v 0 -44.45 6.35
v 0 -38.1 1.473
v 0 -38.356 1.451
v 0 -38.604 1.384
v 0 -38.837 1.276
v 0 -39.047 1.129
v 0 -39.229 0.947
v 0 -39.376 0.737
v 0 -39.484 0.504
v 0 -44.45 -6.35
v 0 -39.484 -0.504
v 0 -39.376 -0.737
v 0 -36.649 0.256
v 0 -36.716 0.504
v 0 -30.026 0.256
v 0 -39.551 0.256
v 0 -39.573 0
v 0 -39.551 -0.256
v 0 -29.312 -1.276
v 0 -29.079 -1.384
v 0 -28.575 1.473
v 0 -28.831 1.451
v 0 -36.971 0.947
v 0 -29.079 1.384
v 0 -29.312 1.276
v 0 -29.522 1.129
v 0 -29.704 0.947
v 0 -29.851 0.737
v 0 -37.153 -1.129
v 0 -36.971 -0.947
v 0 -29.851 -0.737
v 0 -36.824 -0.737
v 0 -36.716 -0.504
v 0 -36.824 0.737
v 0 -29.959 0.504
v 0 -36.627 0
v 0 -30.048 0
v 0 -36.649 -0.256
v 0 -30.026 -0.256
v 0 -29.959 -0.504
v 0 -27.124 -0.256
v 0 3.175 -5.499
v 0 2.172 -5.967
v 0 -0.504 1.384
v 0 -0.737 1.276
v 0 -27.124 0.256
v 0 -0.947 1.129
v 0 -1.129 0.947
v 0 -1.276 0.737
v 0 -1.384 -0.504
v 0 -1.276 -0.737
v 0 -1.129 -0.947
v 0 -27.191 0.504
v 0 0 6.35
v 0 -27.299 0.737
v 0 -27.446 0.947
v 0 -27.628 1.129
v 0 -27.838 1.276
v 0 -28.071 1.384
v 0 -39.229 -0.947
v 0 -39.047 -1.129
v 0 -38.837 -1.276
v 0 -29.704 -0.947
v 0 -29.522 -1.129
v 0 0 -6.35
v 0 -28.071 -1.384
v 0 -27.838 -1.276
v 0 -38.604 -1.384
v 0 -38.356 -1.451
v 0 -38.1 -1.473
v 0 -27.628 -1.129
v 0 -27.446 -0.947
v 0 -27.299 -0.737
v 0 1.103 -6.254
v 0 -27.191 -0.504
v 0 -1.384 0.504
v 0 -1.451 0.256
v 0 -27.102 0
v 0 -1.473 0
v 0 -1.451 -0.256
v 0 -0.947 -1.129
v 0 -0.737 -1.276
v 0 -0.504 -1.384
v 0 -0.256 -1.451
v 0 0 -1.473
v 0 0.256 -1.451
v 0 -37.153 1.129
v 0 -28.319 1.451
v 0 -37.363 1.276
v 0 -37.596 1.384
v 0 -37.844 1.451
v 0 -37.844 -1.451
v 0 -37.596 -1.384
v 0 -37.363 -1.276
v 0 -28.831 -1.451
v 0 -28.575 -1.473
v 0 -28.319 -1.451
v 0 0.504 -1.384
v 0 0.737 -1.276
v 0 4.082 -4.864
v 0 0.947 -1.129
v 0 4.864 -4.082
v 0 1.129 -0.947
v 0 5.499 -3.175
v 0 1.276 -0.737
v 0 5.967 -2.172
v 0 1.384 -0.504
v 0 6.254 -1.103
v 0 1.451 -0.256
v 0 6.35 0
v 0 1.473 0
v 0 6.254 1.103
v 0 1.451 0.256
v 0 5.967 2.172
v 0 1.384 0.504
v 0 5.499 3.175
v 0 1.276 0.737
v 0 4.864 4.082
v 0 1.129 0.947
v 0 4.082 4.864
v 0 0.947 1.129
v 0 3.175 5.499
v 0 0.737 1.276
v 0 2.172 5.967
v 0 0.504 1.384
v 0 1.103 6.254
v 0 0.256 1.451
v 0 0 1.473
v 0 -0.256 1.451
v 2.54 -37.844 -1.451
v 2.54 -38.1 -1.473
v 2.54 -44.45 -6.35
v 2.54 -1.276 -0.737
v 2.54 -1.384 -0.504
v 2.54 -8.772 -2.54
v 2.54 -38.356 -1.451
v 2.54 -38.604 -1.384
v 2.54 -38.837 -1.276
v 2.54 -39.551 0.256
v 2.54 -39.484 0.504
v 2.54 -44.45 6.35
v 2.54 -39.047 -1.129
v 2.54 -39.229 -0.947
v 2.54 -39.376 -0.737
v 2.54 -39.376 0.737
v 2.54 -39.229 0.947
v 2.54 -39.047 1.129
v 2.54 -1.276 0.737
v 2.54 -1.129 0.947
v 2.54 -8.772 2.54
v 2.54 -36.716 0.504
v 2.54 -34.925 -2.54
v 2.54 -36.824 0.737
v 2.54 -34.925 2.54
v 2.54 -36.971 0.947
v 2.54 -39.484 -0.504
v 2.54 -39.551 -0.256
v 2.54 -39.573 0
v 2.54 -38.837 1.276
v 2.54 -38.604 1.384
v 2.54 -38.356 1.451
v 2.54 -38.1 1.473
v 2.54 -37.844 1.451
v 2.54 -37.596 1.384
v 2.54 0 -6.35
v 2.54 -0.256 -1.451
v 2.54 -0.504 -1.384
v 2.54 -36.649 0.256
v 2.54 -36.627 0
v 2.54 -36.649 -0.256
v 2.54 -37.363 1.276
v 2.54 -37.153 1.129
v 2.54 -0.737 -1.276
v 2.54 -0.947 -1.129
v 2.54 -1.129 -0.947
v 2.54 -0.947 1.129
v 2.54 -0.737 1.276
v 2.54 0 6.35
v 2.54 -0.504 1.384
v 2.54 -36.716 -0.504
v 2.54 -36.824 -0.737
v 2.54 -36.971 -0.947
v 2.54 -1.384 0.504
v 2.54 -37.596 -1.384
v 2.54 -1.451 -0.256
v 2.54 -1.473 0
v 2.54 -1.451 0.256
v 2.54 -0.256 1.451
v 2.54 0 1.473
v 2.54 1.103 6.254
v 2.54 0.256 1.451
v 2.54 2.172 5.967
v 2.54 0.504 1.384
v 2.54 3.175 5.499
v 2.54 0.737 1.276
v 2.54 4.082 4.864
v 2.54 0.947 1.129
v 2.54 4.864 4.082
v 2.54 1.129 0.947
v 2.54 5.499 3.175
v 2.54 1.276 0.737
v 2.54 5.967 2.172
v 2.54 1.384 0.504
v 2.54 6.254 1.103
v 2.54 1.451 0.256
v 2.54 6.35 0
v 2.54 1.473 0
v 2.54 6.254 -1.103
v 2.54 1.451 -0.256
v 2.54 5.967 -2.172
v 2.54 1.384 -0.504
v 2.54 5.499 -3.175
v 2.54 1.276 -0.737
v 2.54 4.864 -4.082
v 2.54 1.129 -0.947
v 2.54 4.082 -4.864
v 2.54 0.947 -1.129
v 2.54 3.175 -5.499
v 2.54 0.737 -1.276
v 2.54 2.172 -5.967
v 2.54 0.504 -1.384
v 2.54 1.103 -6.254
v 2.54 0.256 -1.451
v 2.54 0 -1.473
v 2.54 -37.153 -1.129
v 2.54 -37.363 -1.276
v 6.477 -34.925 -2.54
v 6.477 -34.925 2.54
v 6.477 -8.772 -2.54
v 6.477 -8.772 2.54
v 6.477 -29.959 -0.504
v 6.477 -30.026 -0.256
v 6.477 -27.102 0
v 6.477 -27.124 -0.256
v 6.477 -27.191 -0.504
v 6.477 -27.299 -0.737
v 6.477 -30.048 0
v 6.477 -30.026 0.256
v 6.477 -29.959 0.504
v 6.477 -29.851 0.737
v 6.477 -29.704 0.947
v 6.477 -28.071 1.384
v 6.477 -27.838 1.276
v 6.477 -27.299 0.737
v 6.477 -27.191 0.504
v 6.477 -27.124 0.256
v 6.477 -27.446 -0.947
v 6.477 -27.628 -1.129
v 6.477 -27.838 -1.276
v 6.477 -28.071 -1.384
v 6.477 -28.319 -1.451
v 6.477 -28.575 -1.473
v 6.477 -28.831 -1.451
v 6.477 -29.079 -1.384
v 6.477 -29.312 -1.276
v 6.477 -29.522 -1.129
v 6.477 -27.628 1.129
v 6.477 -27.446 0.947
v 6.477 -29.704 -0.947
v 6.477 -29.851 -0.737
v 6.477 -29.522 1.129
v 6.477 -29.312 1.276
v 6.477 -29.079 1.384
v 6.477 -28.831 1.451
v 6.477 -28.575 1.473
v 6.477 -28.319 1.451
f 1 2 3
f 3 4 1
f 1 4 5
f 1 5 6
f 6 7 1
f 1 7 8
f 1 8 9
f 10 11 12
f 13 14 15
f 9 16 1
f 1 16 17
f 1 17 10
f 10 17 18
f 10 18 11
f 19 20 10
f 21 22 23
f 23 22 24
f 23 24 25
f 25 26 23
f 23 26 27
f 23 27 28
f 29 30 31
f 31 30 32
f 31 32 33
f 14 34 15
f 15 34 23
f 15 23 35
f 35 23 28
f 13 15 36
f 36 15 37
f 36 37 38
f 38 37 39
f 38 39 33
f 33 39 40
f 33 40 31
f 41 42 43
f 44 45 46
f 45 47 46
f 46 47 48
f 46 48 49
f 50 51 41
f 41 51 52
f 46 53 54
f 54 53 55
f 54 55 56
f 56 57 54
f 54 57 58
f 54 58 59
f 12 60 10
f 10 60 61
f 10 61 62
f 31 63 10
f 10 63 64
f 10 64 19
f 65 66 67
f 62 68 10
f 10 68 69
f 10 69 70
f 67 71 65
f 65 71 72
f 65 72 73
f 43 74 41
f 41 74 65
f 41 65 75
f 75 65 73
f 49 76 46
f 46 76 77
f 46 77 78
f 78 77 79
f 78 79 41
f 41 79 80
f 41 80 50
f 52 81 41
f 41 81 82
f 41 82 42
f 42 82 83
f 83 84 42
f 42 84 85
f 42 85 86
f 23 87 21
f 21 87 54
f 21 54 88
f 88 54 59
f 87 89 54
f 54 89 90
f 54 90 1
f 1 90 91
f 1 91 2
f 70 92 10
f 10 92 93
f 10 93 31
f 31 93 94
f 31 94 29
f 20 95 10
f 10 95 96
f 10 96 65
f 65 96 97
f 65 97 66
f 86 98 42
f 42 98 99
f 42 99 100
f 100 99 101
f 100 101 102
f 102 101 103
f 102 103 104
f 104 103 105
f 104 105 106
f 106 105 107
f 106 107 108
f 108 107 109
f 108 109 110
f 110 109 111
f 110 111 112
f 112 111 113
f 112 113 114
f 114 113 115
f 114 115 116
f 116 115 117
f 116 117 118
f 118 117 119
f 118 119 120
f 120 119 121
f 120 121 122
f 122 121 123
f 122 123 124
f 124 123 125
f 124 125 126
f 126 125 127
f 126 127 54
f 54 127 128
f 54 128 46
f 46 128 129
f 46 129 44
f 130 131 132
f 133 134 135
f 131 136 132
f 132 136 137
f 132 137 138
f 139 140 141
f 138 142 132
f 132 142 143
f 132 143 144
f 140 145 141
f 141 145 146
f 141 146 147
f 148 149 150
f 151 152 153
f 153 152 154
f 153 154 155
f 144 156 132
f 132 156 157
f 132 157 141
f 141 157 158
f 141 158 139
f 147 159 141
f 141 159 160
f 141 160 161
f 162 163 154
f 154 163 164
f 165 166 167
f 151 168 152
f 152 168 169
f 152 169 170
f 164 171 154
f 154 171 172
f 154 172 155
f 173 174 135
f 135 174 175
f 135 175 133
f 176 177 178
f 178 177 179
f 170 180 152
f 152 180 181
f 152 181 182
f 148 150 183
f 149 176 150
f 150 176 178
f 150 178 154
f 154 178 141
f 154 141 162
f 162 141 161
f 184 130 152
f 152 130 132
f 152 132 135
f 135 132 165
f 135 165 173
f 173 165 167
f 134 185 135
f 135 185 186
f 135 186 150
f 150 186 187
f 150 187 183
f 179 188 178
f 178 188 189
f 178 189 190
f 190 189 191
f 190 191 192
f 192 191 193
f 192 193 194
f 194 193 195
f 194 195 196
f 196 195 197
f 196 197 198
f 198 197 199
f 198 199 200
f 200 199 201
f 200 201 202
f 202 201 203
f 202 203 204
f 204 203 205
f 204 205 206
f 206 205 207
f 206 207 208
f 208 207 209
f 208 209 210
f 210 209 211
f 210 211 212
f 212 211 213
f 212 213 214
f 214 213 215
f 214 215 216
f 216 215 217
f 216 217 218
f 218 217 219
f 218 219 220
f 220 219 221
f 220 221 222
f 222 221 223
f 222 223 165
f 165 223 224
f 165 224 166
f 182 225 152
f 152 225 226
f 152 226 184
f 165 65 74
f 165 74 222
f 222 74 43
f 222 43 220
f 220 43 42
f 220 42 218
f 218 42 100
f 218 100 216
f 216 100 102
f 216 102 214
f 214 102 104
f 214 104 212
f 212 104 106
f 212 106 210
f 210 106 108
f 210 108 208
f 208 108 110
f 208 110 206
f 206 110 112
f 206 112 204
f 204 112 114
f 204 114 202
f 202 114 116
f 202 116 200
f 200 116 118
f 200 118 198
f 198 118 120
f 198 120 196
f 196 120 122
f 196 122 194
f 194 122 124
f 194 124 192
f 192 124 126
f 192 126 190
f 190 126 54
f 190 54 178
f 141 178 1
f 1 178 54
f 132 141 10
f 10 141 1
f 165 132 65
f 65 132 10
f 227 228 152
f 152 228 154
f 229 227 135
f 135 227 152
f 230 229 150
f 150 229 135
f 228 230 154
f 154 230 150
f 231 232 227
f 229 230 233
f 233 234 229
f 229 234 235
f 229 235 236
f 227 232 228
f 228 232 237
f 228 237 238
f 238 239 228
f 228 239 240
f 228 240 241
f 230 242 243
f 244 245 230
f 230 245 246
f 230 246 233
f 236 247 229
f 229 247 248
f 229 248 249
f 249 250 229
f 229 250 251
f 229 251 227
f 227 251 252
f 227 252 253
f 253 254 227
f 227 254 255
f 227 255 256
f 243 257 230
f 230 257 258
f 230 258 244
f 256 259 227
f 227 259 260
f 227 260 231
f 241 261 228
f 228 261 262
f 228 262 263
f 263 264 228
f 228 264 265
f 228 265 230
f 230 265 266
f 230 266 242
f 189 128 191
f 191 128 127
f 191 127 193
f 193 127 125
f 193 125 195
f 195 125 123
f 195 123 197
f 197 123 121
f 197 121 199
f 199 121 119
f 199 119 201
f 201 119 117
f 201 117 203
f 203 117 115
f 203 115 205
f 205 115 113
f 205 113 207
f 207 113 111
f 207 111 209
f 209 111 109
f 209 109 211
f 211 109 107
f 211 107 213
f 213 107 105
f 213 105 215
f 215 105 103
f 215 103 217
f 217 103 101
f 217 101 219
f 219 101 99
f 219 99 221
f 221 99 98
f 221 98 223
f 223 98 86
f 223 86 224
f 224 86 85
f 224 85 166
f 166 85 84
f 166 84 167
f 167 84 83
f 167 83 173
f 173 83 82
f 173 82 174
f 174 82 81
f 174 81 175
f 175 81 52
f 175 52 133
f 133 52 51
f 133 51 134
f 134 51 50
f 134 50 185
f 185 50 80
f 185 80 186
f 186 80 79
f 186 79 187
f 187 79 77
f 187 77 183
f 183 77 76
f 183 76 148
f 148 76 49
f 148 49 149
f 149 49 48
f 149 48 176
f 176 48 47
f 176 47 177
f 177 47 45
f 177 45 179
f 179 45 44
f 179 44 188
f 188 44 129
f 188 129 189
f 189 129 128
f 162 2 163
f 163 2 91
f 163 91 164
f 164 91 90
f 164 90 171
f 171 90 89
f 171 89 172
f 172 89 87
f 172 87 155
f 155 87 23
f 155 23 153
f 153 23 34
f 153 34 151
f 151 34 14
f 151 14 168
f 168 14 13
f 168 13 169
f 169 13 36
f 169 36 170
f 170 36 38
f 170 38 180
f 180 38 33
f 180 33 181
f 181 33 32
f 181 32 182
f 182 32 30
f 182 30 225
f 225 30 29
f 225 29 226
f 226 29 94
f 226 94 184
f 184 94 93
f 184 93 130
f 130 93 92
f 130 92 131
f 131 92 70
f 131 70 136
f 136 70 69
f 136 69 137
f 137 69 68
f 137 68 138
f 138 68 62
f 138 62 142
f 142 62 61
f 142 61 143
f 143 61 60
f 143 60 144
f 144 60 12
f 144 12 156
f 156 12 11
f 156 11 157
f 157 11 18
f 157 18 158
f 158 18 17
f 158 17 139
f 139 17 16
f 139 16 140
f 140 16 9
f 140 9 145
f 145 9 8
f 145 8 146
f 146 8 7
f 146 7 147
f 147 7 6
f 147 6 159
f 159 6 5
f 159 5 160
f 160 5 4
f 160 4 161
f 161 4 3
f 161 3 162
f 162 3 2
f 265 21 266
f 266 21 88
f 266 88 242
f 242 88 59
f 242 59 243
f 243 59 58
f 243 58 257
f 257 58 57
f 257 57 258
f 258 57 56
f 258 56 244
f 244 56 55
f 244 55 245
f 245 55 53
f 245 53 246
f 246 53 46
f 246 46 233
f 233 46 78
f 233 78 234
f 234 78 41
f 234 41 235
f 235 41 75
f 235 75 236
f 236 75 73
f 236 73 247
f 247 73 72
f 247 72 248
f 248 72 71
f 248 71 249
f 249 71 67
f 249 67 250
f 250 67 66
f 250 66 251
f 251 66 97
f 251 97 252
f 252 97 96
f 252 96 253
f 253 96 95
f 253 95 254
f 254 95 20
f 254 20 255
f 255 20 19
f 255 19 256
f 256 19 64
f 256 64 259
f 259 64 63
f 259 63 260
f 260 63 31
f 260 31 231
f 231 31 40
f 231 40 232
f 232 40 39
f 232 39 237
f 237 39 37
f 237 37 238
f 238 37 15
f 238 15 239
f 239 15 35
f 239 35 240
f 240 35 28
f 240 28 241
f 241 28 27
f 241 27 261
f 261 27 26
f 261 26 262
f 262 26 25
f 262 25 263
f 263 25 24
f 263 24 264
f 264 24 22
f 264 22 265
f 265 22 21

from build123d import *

# Parameters (mm, degrees)
BOSS_EXTRUDE1_DEPTH     = 2.54
SKETCH2_W               = 5.08
SKETCH2_H               = 26.152706233
BOSS_EXTRUDE2_DEPTH     = 3.937
CUT_EXTRUDE1_DEPTH      = 46.366028358
CUT_EXTRUDE1_DEPTH_BACK = 46.366028358
SKETCH3_R               = 1.4732
F_4_CLEARANCE_HOLE1_D   = 2.9464


with BuildPart() as part:
    # Sketch1 → Boss-Extrude1 (new body)
    with BuildSketch(Plane(origin=(0, 0, 0), x_dir=(0, 0, -1), z_dir=(1, 0, 0))):
        with BuildLine():
            Line((6.35, -44.45), (6.35, 0))
            ThreePointArc((6.35, 0), (0, 6.35), (-6.35, 0))
            Line((-6.35, 0), (-6.35, -44.45))
            Line((-6.35, -44.45), (6.35, -44.45))
        make_face()
    extrude(amount=BOSS_EXTRUDE1_DEPTH)

    # Sketch2 → Boss-Extrude2 (add)
    with BuildSketch(Plane(origin=(2.54, 0, 0), x_dir=(0, 0, -1), z_dir=(1, 0, 0))):
        with Locations((0, -21.848646884)):
            Rectangle(SKETCH2_W, SKETCH2_H)
    extrude(amount=BOSS_EXTRUDE2_DEPTH)

    # Sketch3 → Cut-Extrude1 (cut, two sides: drawn at the far end of the back side and taken through both)
    with BuildSketch(Plane.ZY.offset(-CUT_EXTRUDE1_DEPTH_BACK)):
        with Locations(Location((0, 0, 0), (0, 0, 180))):
            Circle(SKETCH3_R)
    extrude(amount=CUT_EXTRUDE1_DEPTH + CUT_EXTRUDE1_DEPTH_BACK, mode=Mode.SUBTRACT)

    # #4 Clearance Hole1 (through all)
    with Locations(Plane.ZY):
        with Locations((0, -28.575), (0, -38.1)):
            Hole(F_4_CLEARANCE_HOLE1_D / 2)


solid = part.part
